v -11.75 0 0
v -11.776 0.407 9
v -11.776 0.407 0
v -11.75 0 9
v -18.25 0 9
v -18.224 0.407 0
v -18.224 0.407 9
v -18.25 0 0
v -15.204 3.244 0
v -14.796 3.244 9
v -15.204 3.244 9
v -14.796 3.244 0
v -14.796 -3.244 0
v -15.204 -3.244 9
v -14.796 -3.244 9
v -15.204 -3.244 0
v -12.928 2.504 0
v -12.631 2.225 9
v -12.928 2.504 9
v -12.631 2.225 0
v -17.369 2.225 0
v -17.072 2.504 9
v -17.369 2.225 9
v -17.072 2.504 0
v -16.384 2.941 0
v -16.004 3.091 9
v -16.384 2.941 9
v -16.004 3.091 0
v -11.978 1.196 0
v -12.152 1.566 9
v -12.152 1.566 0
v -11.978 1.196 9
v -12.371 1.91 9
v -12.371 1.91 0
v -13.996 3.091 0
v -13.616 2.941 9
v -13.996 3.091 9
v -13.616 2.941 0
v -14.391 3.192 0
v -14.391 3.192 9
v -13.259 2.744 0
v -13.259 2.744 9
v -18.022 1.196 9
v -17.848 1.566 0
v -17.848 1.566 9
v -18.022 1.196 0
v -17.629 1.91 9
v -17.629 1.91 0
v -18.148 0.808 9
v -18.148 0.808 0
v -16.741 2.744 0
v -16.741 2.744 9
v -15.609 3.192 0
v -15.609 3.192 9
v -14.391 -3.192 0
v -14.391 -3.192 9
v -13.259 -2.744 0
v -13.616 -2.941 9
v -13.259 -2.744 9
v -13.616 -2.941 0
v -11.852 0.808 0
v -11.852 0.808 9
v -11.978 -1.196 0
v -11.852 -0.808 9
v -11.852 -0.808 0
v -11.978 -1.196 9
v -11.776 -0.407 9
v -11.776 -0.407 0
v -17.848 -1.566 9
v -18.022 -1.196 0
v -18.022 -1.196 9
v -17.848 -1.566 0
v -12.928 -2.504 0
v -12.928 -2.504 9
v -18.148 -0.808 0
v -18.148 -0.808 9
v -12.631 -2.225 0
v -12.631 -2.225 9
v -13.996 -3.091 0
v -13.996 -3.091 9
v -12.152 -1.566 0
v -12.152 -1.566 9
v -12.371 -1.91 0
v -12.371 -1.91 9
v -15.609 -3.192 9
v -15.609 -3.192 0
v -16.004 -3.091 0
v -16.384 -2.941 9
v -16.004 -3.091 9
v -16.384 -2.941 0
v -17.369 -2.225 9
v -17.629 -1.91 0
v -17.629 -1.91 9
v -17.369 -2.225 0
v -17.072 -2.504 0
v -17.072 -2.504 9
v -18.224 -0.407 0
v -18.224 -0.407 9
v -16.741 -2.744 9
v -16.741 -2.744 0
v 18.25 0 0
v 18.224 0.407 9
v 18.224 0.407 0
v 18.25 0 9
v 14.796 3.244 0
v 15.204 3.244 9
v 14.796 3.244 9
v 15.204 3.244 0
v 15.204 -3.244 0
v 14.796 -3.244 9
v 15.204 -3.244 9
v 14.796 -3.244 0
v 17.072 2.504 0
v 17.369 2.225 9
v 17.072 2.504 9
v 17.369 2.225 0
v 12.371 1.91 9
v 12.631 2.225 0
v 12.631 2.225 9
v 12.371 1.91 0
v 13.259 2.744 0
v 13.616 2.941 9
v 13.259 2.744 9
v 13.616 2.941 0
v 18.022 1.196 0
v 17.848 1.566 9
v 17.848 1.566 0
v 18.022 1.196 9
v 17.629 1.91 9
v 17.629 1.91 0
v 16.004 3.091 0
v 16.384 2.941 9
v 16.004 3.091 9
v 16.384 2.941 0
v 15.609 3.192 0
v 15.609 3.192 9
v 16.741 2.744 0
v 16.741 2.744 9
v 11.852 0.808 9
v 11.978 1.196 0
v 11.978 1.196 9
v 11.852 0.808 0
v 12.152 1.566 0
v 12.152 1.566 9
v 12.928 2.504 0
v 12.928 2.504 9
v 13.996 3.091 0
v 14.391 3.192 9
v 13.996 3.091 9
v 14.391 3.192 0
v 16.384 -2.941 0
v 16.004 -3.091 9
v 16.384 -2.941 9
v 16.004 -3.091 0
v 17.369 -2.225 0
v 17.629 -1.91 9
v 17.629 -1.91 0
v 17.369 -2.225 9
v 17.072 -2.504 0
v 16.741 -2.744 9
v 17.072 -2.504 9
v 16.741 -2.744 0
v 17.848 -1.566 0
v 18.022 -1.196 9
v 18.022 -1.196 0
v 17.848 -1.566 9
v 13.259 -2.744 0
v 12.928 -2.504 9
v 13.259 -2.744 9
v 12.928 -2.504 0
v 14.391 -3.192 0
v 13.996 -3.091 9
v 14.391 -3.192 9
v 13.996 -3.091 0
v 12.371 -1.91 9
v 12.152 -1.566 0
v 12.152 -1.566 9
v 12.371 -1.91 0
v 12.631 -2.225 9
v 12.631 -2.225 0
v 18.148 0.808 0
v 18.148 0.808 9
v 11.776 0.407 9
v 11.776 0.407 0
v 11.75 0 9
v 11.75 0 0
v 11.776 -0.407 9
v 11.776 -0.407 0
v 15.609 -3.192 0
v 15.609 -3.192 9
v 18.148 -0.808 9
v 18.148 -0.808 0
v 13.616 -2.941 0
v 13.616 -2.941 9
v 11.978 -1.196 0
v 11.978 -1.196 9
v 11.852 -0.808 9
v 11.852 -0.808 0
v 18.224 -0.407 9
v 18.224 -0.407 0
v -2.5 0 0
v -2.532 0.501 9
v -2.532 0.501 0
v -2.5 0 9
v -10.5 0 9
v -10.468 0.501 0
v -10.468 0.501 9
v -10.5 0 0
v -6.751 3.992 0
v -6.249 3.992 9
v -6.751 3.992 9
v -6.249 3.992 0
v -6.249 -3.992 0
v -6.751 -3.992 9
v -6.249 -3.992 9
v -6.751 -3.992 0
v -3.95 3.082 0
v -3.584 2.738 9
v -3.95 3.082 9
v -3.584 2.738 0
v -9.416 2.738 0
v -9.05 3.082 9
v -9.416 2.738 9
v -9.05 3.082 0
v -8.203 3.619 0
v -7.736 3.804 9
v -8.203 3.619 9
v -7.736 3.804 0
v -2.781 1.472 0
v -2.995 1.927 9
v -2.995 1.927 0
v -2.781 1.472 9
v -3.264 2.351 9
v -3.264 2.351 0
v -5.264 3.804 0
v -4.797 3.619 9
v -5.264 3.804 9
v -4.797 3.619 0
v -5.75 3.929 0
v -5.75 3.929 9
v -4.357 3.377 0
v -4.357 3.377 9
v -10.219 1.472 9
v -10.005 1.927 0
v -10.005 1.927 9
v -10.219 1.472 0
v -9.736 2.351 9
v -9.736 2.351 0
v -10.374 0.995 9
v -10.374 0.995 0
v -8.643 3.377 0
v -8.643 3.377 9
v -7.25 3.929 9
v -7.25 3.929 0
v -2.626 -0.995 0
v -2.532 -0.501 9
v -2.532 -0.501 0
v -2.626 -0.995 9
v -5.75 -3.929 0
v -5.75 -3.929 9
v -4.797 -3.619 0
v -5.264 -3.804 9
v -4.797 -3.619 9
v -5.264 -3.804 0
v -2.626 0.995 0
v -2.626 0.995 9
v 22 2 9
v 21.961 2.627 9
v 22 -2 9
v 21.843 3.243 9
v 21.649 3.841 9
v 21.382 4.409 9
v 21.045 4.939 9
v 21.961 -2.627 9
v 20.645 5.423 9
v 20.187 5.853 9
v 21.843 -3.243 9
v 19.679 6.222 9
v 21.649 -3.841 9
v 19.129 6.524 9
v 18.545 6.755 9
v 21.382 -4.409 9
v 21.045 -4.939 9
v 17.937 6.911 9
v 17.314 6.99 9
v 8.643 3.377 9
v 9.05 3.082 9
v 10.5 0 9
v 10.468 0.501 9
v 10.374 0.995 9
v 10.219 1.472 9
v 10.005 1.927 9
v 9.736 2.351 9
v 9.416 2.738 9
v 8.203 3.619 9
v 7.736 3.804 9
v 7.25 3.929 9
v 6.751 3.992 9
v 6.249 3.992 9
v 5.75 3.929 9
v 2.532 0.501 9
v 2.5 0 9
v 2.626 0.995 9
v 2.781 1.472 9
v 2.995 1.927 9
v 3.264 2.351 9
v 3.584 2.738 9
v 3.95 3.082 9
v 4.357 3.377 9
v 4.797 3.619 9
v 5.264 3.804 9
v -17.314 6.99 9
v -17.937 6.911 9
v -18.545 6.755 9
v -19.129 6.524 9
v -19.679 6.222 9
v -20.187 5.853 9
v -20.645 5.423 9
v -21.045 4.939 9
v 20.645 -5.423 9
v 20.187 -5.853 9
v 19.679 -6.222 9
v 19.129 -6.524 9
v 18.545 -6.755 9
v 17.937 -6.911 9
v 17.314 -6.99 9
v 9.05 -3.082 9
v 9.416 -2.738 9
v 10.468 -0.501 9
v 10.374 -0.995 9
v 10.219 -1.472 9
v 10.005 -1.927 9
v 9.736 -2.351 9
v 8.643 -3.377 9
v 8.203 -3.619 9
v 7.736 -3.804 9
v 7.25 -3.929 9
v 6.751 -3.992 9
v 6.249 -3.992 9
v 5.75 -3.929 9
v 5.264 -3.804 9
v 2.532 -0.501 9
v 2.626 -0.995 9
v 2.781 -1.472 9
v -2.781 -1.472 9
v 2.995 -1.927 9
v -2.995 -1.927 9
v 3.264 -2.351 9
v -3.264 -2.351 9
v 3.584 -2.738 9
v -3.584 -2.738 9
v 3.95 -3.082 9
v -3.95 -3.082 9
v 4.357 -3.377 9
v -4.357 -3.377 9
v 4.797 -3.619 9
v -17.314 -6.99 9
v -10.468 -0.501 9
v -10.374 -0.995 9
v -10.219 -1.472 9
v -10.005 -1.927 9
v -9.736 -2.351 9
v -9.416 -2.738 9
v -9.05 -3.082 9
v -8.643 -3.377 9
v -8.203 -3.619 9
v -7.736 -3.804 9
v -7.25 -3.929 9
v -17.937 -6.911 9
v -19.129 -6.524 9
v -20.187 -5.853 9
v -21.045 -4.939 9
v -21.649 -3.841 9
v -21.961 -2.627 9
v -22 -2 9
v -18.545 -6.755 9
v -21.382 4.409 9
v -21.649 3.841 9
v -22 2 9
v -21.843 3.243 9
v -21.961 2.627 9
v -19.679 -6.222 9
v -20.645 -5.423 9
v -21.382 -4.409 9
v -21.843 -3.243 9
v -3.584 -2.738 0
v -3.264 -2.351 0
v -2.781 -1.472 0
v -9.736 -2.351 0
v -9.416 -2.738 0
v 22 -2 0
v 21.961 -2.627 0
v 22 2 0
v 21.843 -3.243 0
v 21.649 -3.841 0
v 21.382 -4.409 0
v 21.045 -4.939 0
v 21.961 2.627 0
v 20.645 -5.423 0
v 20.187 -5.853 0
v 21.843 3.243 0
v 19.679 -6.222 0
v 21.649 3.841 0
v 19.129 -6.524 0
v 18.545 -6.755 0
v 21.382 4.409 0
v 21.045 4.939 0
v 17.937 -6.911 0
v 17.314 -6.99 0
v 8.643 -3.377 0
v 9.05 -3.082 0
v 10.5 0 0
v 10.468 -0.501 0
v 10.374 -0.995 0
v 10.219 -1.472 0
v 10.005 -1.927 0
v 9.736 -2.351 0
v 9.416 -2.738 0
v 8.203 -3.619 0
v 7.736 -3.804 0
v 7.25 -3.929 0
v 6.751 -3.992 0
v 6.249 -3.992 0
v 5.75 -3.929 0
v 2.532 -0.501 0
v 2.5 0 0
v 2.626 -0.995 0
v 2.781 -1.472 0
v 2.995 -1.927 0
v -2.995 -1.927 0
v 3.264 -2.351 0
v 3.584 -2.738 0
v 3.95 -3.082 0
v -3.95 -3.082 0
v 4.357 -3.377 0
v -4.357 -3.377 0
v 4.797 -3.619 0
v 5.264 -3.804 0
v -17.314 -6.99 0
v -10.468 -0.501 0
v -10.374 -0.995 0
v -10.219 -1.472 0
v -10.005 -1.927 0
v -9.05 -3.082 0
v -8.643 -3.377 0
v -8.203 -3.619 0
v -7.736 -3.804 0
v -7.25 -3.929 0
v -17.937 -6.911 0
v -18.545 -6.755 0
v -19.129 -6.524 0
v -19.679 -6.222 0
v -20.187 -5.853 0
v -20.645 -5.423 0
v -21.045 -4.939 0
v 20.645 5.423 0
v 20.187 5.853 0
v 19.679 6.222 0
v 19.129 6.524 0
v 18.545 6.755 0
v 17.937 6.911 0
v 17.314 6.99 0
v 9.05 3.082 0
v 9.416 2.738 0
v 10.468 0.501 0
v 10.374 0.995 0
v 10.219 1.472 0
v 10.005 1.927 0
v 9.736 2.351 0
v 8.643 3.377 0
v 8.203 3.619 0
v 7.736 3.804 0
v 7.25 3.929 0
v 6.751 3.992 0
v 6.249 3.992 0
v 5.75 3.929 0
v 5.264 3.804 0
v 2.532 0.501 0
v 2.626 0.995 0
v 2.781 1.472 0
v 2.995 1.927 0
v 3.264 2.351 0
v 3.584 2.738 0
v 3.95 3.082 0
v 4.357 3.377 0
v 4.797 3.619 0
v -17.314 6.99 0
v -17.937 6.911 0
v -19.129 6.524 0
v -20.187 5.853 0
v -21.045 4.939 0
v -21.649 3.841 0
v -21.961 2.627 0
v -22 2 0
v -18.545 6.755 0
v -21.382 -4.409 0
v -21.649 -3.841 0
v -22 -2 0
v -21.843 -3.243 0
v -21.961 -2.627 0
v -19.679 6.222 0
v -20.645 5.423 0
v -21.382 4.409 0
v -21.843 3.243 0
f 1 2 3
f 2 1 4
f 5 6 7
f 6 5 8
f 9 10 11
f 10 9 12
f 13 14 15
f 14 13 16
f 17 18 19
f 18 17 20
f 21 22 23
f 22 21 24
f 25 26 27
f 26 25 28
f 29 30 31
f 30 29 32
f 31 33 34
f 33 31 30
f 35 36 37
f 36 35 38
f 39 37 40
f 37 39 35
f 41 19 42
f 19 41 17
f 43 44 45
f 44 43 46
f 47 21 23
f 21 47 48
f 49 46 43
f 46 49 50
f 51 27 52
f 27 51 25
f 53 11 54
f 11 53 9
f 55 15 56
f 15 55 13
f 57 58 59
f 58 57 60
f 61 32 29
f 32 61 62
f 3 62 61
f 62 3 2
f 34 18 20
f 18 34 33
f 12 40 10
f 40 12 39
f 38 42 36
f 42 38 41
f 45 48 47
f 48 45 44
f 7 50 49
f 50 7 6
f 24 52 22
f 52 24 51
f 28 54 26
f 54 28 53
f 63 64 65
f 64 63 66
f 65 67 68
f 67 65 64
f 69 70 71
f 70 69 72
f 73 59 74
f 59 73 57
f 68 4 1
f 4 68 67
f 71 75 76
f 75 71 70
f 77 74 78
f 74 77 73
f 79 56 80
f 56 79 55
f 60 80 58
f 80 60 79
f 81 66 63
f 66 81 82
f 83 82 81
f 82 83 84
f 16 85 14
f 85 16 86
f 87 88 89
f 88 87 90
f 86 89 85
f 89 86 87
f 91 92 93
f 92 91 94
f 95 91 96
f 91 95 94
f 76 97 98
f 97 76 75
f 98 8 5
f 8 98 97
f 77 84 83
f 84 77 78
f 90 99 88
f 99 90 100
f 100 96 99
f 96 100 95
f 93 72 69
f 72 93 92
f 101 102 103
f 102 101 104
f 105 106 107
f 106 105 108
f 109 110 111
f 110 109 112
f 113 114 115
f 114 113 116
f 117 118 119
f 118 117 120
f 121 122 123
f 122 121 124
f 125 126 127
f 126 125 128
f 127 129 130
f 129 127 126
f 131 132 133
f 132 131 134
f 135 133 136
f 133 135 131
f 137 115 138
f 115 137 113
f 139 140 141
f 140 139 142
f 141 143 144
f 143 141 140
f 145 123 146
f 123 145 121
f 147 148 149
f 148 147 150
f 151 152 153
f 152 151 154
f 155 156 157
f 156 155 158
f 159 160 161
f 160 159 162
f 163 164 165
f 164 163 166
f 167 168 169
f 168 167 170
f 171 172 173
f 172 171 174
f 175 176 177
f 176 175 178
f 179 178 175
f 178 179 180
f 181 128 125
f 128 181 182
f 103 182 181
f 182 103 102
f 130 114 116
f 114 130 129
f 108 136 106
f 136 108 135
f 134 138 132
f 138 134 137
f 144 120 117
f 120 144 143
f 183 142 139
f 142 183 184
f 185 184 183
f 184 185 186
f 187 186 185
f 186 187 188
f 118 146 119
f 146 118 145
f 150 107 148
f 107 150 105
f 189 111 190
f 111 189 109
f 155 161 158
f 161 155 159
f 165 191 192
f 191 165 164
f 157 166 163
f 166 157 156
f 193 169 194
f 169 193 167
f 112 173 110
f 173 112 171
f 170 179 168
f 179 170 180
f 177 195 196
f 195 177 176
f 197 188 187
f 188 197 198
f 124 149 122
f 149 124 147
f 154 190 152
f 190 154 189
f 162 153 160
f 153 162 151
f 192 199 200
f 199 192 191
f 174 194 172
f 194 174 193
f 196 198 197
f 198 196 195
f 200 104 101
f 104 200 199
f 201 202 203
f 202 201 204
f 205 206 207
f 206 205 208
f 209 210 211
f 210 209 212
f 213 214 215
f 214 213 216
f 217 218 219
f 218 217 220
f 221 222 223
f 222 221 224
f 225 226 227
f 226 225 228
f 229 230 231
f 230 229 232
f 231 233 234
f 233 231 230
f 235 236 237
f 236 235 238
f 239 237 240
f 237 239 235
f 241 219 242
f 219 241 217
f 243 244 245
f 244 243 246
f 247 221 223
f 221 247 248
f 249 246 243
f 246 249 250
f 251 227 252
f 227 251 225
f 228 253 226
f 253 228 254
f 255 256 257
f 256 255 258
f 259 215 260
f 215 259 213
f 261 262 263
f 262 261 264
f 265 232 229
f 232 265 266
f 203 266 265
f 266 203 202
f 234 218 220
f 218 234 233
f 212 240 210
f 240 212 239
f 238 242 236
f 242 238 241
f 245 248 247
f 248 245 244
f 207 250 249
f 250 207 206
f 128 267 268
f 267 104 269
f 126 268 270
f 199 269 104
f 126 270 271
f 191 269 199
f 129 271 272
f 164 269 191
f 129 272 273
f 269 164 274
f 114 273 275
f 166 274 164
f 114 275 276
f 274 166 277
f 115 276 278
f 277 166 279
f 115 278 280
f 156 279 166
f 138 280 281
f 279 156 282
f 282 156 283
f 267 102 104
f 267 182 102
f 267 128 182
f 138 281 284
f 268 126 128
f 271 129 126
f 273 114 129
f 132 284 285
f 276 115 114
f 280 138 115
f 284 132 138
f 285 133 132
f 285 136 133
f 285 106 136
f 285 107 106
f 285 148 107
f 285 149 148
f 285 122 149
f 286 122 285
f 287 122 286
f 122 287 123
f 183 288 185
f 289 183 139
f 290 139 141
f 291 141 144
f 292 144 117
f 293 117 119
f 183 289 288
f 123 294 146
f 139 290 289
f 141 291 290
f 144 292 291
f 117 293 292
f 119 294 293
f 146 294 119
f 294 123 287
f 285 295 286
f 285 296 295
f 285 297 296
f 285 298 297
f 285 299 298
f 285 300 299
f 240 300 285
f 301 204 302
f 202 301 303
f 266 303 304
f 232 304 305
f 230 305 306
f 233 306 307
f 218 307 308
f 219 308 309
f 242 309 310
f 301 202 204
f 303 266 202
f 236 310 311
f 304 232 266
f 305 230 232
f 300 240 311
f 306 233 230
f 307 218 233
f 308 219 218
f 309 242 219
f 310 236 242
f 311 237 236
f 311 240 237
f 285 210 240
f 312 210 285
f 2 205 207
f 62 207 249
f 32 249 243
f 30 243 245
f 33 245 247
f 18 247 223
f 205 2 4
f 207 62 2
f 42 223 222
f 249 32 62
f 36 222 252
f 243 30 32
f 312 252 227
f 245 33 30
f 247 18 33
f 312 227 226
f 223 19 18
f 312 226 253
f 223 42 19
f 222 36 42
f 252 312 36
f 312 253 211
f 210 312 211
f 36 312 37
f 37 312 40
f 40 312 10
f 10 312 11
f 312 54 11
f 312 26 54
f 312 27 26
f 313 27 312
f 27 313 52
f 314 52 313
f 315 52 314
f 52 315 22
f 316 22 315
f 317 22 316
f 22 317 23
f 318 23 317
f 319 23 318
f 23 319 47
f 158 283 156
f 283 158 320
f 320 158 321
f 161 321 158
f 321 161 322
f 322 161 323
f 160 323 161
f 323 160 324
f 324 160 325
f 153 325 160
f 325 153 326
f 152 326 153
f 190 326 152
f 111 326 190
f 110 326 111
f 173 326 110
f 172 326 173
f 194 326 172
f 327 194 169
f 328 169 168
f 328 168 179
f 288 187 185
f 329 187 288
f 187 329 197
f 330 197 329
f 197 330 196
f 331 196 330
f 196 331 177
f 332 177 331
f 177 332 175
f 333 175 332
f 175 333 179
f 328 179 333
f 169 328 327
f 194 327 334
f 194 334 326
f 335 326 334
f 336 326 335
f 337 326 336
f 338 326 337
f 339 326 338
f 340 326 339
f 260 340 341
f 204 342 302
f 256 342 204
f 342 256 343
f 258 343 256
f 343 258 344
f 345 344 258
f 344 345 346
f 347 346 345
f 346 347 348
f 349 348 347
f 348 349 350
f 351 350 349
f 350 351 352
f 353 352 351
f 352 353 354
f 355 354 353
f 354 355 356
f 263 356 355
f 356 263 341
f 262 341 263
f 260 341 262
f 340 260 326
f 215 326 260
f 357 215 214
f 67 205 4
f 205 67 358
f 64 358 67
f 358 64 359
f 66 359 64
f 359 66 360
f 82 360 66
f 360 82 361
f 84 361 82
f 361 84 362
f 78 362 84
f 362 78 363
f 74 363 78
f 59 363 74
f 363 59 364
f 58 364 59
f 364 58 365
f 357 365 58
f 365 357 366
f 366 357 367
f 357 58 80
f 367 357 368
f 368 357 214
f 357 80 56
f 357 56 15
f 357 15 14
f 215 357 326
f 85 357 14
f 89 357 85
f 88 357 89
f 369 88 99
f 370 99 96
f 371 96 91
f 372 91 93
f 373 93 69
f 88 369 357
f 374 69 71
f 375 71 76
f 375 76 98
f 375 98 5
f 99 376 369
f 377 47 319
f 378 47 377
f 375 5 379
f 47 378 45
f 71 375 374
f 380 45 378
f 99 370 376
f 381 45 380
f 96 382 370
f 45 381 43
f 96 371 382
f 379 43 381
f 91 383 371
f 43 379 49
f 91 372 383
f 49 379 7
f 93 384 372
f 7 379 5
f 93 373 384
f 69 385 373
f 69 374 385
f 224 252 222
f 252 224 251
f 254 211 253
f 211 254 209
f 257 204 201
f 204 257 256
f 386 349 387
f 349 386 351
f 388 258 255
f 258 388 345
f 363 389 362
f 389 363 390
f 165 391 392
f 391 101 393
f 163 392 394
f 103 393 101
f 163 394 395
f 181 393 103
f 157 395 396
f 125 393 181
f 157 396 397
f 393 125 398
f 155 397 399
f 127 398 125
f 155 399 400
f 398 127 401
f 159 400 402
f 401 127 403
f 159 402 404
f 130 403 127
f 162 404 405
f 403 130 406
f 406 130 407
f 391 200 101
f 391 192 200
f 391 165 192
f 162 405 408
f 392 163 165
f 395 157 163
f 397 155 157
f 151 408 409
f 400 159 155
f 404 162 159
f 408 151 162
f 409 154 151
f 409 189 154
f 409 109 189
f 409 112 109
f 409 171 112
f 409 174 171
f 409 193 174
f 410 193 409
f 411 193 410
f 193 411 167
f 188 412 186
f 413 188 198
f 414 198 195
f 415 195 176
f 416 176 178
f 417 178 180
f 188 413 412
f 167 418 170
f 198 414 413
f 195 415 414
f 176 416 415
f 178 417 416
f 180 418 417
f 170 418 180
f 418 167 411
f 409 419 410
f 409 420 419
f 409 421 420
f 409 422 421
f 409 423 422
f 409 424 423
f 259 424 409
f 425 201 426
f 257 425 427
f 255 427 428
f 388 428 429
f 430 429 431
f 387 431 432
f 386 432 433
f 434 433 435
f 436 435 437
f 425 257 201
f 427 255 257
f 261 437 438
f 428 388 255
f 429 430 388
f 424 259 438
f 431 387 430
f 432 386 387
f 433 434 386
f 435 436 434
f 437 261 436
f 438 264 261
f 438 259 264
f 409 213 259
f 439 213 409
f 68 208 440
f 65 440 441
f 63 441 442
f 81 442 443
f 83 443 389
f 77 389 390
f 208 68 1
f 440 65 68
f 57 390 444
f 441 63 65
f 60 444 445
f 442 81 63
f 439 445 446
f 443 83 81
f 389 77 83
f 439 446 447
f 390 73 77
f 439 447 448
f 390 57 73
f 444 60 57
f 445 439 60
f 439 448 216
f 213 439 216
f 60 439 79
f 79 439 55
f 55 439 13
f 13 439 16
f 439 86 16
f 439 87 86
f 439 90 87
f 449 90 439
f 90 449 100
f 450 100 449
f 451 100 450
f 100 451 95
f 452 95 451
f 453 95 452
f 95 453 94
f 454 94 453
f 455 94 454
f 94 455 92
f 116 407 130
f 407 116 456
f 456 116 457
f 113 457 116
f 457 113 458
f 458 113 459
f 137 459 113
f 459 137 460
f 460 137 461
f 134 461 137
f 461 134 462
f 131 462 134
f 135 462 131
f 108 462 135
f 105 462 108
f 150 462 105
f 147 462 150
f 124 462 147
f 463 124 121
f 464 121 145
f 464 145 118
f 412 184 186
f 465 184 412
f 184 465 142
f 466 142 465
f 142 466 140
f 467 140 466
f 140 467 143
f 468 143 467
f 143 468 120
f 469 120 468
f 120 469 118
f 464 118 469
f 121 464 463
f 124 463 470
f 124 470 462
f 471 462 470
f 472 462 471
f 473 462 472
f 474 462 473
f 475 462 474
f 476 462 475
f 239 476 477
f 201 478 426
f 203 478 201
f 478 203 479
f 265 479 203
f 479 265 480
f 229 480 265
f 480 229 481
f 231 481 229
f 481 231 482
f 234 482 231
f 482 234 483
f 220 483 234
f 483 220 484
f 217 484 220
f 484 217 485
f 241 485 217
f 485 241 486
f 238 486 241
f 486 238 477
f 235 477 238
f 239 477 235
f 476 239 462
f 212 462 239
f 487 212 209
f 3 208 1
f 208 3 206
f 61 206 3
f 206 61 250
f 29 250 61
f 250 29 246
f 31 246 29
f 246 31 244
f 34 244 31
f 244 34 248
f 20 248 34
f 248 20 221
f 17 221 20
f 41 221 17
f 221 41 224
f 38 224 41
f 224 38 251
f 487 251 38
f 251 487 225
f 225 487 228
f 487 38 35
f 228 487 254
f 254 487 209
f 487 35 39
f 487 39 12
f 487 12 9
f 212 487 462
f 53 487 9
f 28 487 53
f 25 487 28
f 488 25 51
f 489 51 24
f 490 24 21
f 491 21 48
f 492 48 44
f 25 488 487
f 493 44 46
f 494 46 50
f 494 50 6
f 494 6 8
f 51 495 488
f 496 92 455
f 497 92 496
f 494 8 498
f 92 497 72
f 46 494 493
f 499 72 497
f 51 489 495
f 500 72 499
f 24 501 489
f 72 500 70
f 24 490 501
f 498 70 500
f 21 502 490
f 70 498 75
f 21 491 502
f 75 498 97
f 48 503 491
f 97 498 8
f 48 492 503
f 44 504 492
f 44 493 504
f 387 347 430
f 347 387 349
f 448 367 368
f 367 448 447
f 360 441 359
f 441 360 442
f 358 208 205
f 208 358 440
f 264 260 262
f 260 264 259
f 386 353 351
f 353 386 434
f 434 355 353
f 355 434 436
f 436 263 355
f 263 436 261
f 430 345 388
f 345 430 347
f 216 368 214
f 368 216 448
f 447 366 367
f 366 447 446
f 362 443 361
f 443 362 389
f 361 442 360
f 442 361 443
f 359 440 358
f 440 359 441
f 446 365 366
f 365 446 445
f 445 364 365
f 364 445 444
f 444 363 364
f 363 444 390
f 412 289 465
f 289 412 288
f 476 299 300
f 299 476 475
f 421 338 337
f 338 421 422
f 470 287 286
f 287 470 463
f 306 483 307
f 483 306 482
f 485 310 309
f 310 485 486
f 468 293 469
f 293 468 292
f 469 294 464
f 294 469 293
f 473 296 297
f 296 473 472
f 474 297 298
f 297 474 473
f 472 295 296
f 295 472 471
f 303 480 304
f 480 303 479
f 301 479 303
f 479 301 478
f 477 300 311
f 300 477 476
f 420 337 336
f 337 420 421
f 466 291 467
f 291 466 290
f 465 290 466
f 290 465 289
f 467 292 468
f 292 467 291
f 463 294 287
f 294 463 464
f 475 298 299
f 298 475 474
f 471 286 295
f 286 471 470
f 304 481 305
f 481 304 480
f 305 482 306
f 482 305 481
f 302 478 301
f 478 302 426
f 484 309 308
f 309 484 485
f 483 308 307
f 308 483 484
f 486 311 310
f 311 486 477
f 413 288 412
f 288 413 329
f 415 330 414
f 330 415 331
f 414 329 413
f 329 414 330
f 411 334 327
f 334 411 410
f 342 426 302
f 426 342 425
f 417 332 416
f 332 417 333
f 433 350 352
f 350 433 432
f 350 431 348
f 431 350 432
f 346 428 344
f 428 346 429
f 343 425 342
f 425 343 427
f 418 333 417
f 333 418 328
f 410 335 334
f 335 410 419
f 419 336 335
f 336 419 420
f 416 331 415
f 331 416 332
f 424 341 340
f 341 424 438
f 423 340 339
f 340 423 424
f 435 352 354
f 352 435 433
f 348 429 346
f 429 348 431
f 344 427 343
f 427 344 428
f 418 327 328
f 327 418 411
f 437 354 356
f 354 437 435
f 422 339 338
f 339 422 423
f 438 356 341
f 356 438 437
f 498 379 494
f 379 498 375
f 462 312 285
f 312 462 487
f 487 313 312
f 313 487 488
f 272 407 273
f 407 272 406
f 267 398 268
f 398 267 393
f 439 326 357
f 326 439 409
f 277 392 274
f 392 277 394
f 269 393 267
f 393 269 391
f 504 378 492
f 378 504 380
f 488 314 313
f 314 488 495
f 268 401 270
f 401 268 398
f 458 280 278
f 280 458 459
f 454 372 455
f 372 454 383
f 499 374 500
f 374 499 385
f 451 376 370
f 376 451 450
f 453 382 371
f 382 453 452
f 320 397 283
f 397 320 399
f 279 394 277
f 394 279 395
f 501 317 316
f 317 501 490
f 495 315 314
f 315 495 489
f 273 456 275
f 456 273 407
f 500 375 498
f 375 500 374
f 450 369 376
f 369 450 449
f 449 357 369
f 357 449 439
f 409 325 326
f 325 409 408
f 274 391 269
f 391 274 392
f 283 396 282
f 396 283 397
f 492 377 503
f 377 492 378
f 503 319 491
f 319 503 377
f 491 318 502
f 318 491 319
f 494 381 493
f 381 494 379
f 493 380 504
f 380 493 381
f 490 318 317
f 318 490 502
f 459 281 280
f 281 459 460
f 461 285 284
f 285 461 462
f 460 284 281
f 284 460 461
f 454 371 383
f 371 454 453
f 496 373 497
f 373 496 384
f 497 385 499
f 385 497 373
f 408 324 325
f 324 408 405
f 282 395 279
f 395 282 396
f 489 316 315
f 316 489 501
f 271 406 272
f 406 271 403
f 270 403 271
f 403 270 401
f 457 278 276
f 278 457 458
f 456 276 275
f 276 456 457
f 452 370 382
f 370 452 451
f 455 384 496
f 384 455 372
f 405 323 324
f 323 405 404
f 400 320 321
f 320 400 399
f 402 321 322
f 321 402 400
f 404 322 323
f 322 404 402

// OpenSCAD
$fn = 50;


difference() {
	union() {
		hull() {
			translate(v = [-17.0000000000, 2.0000000000, 0]) {
				cylinder(h = 9, r = 5);
			}
			translate(v = [17.0000000000, 2.0000000000, 0]) {
				cylinder(h = 9, r = 5);
			}
			translate(v = [-17.0000000000, -2.0000000000, 0]) {
				cylinder(h = 9, r = 5);
			}
			translate(v = [17.0000000000, -2.0000000000, 0]) {
				cylinder(h = 9, r = 5);
			}
		}
	}
	union() {
		#translate(v = [-15.0000000000, 0.0000000000, 0]) {
			cylinder(h = 9, r = 3.2500000000);
		}
		#translate(v = [15.0000000000, 0.0000000000, 0]) {
			cylinder(h = 9, r = 3.2500000000);
		}
		#translate(v = [-15.0000000000, 0.0000000000, -100.0000000000]) {
			cylinder(h = 200, r = 3.2500000000);
		}
		#translate(v = [-15.0000000000, 0.0000000000, -100.0000000000]) {
			cylinder(h = 200, r = 3.2500000000);
		}
		#translate(v = [15.0000000000, 0.0000000000, -100.0000000000]) {
			cylinder(h = 200, r = 3.2500000000);
		}
		#translate(v = [15.0000000000, 0.0000000000, -100.0000000000]) {
			cylinder(h = 200, r = 3.2500000000);
		}
		#translate(v = [-15.0000000000, 0.0000000000, 0]) {
			cylinder(h = 9, r = 1.8000000000);
		}
		#translate(v = [15.0000000000, 0.0000000000, 0]) {
			cylinder(h = 9, r = 1.8000000000);
		}
		#translate(v = [-15.0000000000, 0.0000000000, 0]) {
			cylinder(h = 9, r = 1.8000000000);
		}
		#translate(v = [15.0000000000, 0.0000000000, 0]) {
			cylinder(h = 9, r = 1.8000000000);
		}
		#translate(v = [-15.0000000000, 0.0000000000, 0]) {
			cylinder(h = 9, r = 1.8000000000);
		}
		#translate(v = [15.0000000000, 0.0000000000, 0]) {
			cylinder(h = 9, r = 1.8000000000);
		}
		#translate(v = [-6.5000000000, 0, 0]) {
			cylinder(h = 9, r = 4.0000000000);
		}
		#translate(v = [6.5000000000, 0, 0]) {
			cylinder(h = 9, r = 4.0000000000);
		}
	}
}
